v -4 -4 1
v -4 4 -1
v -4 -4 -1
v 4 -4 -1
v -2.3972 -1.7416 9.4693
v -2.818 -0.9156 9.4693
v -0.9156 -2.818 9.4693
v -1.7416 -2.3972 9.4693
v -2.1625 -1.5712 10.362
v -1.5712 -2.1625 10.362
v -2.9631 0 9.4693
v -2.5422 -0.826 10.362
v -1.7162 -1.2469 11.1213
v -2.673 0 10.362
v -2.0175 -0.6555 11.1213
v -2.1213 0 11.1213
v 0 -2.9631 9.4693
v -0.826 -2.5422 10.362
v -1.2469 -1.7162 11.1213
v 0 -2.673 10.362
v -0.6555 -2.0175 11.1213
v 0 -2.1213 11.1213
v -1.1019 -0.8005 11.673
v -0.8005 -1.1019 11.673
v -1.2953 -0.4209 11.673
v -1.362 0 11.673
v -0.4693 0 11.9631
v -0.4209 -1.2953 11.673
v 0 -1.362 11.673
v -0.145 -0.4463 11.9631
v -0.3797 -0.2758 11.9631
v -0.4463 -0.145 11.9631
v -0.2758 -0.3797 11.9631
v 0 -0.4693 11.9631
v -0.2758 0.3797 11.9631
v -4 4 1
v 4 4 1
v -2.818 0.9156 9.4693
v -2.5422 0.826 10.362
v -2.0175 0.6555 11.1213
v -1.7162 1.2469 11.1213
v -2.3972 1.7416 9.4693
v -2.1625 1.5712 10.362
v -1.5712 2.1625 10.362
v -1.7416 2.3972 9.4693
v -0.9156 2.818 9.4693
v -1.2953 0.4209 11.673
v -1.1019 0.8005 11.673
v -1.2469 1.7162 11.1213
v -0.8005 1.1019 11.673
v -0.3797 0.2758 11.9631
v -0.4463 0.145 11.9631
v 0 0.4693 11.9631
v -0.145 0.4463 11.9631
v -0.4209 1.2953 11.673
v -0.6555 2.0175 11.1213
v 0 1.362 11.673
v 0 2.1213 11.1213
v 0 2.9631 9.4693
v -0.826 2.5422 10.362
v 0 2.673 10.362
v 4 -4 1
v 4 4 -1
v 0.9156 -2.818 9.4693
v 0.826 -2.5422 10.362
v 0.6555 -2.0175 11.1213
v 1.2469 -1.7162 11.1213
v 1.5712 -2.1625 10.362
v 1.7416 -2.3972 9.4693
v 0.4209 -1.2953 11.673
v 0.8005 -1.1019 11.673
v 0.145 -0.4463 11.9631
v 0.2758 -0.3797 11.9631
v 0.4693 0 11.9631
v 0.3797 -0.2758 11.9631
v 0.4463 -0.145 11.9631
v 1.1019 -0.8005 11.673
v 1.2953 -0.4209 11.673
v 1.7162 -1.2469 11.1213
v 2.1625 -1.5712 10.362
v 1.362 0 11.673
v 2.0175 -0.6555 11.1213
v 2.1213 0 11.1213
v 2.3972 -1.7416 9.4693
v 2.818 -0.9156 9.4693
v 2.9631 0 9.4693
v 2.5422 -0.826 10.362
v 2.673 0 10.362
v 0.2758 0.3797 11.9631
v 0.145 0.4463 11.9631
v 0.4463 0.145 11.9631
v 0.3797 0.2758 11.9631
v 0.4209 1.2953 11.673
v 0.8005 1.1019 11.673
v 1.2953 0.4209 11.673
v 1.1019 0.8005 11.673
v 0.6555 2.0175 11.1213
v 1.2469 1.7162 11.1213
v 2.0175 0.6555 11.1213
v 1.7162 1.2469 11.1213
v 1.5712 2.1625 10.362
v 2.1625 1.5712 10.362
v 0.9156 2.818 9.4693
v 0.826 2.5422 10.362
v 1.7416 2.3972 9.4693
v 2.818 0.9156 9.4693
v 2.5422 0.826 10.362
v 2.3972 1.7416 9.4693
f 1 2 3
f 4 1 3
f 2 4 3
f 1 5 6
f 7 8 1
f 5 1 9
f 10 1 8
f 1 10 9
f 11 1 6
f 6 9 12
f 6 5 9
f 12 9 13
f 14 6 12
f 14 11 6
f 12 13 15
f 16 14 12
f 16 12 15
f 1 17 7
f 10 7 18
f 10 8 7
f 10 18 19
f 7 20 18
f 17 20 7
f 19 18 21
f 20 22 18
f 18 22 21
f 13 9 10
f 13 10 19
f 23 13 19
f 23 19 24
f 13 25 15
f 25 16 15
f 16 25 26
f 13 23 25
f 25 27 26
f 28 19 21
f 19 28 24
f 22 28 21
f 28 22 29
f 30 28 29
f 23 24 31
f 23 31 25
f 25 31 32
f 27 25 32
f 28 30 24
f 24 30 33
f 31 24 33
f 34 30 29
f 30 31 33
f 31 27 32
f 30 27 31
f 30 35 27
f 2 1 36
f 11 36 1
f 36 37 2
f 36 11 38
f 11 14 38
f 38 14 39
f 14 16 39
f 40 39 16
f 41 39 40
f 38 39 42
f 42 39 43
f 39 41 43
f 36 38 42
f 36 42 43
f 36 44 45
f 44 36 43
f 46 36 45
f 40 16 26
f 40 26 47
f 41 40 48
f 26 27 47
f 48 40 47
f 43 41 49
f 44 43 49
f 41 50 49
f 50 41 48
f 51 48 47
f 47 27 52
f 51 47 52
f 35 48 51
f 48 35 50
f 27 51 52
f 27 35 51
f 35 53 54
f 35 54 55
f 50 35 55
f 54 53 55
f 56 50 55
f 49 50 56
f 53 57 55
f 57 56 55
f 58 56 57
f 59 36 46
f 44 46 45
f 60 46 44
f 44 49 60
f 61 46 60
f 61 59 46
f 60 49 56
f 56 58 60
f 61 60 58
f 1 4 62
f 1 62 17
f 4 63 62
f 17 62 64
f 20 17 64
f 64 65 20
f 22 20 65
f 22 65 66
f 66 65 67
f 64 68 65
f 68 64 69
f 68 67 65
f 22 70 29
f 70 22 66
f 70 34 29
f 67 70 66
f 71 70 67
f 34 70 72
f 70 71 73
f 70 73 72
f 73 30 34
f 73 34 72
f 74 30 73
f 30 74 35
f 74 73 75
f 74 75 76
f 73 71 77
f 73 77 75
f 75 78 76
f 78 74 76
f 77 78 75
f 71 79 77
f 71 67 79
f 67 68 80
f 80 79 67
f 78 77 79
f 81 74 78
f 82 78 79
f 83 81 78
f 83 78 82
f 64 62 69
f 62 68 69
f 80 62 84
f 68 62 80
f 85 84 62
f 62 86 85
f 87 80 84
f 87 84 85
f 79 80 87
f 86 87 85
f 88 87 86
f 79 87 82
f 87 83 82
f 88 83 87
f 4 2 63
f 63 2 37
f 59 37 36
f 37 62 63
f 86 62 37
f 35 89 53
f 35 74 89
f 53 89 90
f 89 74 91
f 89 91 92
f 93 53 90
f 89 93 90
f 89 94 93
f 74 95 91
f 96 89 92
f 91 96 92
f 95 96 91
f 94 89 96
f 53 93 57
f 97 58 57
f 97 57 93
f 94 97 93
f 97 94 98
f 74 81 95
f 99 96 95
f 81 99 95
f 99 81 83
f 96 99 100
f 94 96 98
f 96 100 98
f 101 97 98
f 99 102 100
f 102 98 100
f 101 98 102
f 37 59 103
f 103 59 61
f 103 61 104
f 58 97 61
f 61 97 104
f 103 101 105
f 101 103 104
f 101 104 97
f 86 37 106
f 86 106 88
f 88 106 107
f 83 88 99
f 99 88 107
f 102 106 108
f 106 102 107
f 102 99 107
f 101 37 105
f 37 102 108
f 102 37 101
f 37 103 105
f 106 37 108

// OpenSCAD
// Mixed primitive kinds in one hull.
$fn = 20;
hull() { cube([8, 8, 2], center = true); translate([0, 0, 9]) sphere(3); }
